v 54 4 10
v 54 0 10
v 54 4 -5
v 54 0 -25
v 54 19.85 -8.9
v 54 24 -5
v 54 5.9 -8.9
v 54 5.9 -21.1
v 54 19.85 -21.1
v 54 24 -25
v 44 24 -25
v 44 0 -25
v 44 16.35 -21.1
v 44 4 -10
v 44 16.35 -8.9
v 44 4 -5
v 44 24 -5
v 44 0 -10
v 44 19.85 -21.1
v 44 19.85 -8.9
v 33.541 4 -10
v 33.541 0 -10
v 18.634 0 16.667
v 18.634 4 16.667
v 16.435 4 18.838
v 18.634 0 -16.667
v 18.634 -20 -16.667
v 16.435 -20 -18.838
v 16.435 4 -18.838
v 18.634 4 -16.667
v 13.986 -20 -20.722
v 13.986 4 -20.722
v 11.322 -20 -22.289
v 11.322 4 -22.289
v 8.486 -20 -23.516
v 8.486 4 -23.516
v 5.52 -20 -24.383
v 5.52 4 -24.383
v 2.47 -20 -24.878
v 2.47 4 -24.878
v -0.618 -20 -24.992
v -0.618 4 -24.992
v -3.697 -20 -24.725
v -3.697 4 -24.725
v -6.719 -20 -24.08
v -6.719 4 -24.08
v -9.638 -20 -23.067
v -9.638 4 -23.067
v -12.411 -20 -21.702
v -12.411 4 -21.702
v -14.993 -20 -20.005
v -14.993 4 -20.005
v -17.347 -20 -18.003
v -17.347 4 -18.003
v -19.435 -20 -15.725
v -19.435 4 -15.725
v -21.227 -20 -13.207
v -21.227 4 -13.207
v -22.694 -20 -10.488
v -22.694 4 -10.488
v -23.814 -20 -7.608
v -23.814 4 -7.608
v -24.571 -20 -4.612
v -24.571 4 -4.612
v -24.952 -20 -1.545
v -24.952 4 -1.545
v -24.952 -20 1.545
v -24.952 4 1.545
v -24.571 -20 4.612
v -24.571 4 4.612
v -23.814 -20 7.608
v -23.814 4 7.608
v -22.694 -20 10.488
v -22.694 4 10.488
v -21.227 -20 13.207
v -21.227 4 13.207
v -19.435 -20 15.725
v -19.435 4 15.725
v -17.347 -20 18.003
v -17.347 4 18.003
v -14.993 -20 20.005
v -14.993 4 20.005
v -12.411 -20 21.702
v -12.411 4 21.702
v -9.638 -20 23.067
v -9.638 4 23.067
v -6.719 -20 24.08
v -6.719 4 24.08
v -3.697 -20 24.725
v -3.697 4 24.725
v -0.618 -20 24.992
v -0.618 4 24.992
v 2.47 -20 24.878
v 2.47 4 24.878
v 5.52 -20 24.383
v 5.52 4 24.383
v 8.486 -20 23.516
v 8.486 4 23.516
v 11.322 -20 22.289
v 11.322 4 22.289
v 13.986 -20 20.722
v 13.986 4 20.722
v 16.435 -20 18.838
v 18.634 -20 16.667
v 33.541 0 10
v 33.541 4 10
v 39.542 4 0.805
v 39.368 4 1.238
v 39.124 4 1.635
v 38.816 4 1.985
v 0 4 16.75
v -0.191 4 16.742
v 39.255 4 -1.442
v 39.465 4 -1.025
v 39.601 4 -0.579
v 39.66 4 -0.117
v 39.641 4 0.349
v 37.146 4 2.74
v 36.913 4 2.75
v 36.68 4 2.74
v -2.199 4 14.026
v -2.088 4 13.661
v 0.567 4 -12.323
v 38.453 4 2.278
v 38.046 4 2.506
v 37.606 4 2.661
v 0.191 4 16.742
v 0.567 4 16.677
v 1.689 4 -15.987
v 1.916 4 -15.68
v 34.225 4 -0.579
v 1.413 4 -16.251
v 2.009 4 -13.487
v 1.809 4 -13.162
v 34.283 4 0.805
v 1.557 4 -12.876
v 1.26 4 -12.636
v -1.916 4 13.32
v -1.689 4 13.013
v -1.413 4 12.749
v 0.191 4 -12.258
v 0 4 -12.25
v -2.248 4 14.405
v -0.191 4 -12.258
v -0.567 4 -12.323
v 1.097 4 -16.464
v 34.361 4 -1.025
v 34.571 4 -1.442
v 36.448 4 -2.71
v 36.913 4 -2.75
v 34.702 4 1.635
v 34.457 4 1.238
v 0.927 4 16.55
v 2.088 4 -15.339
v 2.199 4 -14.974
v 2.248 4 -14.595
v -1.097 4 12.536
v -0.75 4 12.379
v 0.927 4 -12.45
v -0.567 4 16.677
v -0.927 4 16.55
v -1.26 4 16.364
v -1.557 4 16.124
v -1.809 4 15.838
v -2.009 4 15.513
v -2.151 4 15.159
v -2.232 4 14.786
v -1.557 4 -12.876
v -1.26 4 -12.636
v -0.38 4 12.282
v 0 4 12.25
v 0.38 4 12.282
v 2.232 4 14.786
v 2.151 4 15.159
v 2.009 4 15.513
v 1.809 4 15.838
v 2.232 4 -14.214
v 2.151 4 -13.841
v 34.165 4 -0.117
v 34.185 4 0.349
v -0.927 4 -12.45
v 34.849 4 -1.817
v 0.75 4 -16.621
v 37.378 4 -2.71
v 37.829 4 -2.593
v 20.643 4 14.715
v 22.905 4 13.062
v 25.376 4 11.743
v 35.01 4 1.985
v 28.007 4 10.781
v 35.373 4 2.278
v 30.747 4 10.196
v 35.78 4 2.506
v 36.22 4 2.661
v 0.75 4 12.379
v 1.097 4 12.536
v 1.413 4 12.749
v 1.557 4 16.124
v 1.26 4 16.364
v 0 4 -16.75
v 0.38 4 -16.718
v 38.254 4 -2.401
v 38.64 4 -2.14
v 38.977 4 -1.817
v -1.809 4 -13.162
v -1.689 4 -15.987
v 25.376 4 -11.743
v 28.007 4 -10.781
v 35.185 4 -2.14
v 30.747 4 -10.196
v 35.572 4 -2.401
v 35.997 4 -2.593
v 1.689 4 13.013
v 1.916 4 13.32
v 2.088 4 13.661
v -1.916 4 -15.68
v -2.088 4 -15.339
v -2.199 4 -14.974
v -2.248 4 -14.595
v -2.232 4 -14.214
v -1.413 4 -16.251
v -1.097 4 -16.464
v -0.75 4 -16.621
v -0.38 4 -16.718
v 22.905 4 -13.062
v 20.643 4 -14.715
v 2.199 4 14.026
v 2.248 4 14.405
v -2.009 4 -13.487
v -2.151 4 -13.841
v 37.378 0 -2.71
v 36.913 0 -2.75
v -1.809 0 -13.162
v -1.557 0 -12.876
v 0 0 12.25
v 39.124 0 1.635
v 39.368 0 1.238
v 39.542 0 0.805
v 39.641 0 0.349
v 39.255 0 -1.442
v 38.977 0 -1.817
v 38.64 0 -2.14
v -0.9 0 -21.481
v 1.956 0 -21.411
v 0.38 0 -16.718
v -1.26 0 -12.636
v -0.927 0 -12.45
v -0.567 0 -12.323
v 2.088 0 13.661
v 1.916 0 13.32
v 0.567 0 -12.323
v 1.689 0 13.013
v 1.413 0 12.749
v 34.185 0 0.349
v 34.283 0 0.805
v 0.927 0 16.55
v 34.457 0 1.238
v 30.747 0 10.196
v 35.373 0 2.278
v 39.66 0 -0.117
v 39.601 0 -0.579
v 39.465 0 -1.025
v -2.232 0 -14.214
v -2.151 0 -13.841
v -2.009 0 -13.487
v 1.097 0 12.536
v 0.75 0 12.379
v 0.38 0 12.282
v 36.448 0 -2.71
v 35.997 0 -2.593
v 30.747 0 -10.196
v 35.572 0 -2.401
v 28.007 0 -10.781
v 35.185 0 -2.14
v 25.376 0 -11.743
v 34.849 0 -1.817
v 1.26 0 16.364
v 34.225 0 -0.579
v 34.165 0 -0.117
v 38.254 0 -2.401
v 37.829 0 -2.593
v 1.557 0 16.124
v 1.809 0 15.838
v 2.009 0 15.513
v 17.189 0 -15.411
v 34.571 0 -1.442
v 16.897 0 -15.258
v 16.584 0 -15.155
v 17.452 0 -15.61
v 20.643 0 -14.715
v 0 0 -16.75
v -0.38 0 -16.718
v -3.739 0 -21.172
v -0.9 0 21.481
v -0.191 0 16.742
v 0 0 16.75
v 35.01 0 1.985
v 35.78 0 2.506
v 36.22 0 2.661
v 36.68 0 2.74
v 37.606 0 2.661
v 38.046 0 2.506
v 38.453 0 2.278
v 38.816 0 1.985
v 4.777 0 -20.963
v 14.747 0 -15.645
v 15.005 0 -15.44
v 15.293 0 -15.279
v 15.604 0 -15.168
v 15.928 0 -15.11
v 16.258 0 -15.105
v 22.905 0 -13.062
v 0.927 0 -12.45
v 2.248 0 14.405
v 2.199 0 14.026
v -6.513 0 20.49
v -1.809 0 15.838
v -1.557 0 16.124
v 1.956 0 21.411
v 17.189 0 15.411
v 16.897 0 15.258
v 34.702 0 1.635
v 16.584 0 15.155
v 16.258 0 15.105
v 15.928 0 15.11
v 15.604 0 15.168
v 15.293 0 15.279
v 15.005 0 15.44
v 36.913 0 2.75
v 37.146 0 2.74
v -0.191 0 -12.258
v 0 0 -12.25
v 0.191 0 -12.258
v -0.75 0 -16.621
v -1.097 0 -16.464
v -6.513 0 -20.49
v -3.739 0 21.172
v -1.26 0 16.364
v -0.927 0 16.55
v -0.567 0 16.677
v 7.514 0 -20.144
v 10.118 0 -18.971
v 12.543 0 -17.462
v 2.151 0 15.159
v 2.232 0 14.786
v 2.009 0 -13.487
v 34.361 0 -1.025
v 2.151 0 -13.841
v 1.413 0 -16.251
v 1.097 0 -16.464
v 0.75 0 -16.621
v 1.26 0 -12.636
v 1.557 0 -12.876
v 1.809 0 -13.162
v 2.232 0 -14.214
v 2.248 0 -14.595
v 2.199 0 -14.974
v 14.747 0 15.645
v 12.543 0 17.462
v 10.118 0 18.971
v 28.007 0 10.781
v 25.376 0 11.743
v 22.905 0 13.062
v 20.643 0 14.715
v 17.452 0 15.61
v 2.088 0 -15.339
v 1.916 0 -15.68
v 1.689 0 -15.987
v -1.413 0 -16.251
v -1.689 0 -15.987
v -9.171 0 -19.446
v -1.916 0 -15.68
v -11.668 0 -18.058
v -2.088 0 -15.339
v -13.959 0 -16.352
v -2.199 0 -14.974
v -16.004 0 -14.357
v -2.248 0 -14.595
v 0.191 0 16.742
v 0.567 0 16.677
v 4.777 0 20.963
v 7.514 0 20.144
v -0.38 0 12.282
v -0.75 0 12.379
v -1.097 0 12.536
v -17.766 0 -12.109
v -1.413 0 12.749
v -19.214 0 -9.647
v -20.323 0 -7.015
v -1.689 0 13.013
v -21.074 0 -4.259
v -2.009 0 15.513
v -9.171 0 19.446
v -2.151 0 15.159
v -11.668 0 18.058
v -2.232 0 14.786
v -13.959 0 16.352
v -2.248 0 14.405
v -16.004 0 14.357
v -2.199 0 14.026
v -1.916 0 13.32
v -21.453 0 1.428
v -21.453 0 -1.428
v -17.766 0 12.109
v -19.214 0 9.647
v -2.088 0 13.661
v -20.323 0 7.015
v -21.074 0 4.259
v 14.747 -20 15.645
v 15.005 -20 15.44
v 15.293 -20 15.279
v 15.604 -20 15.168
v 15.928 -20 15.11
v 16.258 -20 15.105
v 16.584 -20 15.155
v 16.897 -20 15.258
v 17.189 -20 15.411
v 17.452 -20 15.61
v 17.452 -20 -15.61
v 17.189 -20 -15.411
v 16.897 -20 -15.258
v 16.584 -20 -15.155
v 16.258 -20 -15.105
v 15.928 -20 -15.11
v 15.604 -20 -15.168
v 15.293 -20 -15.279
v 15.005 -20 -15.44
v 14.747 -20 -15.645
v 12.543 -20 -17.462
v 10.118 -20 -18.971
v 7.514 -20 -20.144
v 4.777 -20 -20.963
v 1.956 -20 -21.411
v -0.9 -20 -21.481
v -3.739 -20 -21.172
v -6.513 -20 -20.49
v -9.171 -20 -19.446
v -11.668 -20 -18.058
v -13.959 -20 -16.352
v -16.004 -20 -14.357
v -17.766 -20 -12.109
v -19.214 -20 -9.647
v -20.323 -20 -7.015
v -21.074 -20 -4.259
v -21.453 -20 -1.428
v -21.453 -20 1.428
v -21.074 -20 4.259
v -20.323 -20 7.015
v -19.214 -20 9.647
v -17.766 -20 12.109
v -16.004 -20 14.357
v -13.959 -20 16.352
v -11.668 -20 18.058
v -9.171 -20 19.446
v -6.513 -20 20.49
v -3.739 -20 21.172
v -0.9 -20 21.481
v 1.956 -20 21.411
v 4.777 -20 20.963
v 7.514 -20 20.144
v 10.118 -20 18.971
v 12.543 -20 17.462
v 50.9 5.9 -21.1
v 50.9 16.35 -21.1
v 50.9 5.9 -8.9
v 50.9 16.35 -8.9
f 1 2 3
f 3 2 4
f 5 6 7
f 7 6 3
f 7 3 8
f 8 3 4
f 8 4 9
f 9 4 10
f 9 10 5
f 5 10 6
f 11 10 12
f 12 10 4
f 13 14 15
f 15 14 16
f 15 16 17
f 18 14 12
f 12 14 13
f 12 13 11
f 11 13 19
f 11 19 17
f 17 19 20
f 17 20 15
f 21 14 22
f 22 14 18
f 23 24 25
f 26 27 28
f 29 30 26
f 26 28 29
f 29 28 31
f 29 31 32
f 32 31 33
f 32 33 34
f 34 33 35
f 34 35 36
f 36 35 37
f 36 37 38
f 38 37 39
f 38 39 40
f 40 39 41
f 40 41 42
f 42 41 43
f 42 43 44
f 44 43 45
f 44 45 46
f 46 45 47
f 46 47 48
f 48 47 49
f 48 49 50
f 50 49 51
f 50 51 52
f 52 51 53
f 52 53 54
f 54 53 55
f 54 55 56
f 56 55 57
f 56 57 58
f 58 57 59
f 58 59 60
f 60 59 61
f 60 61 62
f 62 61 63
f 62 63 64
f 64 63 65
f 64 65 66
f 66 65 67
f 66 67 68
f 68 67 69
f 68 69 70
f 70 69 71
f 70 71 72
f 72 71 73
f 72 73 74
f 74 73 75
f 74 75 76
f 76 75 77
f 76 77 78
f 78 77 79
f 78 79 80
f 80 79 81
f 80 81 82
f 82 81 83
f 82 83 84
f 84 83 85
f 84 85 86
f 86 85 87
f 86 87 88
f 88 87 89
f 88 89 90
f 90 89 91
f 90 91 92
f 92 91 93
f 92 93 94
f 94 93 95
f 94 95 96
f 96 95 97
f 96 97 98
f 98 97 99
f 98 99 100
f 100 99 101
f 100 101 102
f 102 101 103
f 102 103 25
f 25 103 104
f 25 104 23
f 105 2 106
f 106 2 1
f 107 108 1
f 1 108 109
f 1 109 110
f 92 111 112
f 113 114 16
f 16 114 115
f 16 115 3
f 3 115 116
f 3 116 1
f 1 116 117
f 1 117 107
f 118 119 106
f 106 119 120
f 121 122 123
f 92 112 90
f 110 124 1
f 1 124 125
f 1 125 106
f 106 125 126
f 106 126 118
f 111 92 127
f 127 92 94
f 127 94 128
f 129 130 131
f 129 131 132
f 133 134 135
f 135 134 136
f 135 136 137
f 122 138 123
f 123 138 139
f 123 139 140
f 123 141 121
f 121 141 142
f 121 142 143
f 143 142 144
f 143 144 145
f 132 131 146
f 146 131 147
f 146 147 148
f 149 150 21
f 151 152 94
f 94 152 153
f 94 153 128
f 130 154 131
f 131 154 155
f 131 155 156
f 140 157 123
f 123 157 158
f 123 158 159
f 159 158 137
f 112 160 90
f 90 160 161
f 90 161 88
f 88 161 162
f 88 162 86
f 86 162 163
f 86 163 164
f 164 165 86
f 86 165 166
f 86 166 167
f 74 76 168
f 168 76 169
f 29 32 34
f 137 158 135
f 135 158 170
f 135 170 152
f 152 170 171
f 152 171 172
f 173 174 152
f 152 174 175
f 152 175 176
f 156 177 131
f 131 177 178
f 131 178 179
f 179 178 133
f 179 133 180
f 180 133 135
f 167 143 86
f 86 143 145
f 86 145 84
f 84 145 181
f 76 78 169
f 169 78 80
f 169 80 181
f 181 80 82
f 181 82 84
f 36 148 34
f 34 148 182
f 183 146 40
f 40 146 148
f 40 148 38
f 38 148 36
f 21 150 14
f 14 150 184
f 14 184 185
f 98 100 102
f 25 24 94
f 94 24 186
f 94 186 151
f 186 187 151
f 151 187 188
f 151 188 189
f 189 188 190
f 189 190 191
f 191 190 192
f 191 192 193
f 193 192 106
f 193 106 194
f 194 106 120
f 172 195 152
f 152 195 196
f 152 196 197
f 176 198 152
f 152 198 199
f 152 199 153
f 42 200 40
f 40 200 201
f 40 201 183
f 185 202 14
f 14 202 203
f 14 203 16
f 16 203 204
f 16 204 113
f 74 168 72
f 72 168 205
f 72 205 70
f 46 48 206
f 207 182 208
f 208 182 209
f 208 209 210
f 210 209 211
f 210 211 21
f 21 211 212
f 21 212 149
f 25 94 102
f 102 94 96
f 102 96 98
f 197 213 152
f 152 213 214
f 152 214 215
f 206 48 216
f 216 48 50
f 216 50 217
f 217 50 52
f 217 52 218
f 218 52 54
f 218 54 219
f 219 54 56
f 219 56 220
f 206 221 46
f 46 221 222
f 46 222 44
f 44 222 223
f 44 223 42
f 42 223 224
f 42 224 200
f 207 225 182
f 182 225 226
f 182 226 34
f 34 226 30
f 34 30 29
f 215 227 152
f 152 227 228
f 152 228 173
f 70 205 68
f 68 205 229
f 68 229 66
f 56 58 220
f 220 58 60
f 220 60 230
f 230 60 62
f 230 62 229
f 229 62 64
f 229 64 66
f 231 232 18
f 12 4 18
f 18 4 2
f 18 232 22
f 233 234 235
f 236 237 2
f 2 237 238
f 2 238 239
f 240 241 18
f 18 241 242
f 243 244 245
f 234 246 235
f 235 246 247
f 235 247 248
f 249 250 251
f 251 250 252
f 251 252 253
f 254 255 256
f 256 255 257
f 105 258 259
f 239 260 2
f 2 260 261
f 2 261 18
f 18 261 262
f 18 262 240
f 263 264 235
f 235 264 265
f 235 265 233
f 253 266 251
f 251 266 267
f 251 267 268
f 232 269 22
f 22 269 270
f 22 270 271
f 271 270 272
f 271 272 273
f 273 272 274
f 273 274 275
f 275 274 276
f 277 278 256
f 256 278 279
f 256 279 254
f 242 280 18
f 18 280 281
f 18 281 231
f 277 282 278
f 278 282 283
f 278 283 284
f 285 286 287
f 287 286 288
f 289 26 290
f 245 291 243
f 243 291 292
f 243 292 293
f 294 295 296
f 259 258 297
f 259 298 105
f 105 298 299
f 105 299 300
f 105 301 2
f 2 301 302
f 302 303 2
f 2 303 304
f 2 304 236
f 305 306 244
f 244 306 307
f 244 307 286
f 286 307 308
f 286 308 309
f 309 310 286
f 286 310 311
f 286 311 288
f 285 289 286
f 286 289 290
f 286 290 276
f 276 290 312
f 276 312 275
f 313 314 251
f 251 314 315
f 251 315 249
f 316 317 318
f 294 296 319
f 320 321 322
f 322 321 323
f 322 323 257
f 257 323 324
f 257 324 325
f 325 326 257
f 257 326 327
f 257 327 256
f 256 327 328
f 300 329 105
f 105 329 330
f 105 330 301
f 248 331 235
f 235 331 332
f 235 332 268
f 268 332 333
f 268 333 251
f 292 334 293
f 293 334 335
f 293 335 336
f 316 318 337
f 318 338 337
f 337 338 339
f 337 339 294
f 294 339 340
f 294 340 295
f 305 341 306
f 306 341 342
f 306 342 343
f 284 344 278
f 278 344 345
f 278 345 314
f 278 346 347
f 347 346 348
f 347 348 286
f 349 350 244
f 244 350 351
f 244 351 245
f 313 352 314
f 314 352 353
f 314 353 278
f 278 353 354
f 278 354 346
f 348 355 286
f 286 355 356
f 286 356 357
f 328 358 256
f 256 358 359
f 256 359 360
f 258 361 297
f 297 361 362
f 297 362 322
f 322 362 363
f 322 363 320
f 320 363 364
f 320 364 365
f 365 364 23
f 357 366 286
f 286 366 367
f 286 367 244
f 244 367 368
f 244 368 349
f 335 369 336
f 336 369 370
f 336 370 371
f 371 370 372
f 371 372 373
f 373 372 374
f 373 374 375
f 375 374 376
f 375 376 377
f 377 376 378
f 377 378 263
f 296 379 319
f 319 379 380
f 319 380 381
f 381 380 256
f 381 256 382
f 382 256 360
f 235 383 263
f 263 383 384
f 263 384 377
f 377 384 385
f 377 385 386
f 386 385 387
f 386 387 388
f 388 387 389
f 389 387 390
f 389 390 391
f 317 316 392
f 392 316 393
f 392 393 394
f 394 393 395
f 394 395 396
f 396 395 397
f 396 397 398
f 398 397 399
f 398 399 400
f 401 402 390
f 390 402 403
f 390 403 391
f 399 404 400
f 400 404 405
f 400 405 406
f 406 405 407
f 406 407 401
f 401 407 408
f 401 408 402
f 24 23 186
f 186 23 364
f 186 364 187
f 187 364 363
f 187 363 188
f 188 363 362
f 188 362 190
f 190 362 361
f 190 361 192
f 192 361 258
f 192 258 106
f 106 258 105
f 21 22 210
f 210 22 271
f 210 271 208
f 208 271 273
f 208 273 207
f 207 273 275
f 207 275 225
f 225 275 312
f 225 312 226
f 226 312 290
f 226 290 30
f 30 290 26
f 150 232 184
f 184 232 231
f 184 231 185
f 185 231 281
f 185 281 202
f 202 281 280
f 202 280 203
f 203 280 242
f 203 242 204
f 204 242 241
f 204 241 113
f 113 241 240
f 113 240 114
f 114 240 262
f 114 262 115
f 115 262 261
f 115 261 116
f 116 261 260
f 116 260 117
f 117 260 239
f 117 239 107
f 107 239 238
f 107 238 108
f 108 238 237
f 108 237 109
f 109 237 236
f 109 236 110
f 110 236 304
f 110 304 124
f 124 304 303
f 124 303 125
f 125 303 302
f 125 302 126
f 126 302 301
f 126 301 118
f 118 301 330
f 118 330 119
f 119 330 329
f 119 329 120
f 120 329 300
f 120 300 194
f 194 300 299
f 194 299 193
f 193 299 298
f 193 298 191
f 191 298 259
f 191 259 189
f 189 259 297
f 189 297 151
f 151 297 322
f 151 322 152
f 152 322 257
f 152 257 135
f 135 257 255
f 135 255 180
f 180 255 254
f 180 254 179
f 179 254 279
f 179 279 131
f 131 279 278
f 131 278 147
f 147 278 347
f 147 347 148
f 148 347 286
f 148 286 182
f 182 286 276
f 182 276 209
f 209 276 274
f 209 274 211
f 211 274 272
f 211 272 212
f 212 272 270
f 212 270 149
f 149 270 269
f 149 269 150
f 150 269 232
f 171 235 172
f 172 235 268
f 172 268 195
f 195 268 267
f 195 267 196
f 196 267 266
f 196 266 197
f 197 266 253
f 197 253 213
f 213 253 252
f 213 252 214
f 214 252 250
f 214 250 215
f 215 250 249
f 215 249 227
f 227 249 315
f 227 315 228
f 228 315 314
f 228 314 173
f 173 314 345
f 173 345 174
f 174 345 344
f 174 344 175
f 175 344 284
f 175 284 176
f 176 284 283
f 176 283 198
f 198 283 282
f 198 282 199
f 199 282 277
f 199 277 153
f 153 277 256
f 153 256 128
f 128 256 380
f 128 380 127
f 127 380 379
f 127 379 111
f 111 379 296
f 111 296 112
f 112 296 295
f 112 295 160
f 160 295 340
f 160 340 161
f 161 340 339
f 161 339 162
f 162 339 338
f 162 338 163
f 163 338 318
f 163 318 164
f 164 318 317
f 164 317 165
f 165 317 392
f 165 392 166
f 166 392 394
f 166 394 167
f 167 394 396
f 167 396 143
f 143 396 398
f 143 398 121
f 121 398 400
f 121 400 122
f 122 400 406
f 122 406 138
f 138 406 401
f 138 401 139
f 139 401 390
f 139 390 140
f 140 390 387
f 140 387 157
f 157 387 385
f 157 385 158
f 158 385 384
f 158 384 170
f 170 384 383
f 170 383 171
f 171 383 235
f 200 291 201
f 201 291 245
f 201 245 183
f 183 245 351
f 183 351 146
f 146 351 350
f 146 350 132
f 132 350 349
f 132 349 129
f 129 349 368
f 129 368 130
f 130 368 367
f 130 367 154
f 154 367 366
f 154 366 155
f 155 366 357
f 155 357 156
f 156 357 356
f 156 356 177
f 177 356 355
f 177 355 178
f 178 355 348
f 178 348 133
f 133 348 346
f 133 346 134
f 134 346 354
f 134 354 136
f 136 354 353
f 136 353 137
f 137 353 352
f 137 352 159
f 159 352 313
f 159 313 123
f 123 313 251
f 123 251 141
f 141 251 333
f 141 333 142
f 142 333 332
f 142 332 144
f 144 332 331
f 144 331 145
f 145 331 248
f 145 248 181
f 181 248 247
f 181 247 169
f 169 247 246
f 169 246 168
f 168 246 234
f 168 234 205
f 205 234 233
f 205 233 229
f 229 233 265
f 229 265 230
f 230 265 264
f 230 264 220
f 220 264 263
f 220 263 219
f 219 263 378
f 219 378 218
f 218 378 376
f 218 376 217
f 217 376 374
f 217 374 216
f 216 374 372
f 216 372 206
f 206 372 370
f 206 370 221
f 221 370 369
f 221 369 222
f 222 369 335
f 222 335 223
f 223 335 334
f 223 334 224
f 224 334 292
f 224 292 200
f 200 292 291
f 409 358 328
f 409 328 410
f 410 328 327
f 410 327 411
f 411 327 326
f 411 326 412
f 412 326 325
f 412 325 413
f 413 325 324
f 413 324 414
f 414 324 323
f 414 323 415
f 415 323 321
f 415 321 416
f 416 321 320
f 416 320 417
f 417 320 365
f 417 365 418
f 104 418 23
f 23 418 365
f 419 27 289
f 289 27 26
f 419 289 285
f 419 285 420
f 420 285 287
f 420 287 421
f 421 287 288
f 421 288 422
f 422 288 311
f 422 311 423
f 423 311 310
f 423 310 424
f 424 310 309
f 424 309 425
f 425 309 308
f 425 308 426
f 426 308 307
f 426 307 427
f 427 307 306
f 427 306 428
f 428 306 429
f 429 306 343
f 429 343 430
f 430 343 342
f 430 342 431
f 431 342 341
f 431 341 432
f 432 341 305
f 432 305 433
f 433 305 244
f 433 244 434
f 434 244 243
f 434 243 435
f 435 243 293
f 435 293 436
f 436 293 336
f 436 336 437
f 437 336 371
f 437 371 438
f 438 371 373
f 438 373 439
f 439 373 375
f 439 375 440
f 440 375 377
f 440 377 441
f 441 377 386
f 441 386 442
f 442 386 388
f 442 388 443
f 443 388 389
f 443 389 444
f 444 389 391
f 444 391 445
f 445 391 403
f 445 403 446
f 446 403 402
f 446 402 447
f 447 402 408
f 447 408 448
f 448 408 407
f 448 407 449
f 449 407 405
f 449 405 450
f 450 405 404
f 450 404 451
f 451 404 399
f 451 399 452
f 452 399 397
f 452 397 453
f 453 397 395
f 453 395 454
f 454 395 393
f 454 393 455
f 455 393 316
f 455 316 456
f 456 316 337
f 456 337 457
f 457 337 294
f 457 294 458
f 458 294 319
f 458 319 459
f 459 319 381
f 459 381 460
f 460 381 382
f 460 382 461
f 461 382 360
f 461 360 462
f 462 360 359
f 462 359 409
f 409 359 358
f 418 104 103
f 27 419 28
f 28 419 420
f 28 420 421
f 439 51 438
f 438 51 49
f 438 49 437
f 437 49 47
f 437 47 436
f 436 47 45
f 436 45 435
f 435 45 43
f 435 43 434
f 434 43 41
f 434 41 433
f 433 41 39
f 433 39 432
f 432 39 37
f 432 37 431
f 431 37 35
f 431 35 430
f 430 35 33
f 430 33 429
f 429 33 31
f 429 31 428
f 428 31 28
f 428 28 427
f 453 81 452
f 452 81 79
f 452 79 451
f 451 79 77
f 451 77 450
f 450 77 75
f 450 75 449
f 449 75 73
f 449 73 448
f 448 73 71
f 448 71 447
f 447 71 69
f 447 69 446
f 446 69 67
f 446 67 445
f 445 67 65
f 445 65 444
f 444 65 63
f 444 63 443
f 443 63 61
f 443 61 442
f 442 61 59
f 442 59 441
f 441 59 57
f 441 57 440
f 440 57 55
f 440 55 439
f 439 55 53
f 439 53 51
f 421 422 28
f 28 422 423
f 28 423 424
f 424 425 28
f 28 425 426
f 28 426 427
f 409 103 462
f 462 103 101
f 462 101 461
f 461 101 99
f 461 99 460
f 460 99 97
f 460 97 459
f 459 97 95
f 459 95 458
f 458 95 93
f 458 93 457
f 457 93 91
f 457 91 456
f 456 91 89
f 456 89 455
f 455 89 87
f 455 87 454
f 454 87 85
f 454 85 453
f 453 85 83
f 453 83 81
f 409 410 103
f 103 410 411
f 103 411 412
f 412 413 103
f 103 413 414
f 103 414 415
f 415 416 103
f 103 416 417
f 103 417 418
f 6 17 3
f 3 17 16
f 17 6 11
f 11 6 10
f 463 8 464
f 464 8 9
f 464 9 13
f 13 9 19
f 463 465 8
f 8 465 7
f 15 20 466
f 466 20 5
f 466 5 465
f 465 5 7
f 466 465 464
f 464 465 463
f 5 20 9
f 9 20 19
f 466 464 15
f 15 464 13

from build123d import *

# Parameters (mm, degrees)
BOSS_EXTRUDE1_DEPTH = 4
FILLET1_R           = 20
SKETCH1_R           = 2.25
SKETCH1_R_2         = 2.75
CUT_EXTRUDE3_DEPTH  = 131.855321132
BOSS_EXTRUDE2_START = 20
BOSS_EXTRUDE2_DEPTH = 20
SKETCH7_W           = 10
SKETCH7_H           = 20
BOSS_EXTRUDE3_DEPTH = 20
SKETCH8_W           = 12.2
SKETCH8_H           = 12.2
CUT_EXTRUDE4_DEPTH  = 3.1
CUT_EXTRUDE5_REACH  = 88.267
SKETCH8_3_W         = 12.2
SKETCH8_3_H         = 3.5


with BuildPart() as part:
    # Sketch3 → Boss-Extrude1 (new body)
    with BuildSketch(Plane(origin=(0, 0, 0), x_dir=(1, 0, 0), z_dir=(0, 1, 0))):
        with BuildLine():
            Line((22.912878475, 10), (44, 10))
            Line((44, 10), (44, 25))
            Line((44, 25), (54, 25))
            Line((54, 25), (54, -10))
            Line((54, -10), (22.912878475, -10))
            ThreePointArc((22.912878475, -10), (-25, 0), (22.912878475, 10))
        make_face()
    extrude(amount=BOSS_EXTRUDE1_DEPTH)

    # Fillet1
    fillet1_edges = [part.edges().sort_by_distance(p)[0] for p in [
        (22.912878475, 2, 10),
        (22.912878475, 2, -10),
    ]]
    fillet(fillet1_edges, radius=FILLET1_R)

    # Sketch1 → Cut-Extrude3 (cut, through all)
    with BuildSketch(Plane(origin=(103.38268991, 0, 0), x_dir=(1, 0, 0), z_dir=(0, 1, 0))):
        with Locations((-103.38268991, 14.5)):
            Circle(SKETCH1_R)
        with Locations((-103.38268991, -14.5)):
            Circle(SKETCH1_R)
        with Locations((-66.469811435, 0)):
            Circle(SKETCH1_R_2)
    extrude(amount=CUT_EXTRUDE3_DEPTH, mode=Mode.SUBTRACT)

    # Sketch4 → Boss-Extrude2 (add)
    with BuildSketch(Plane.XZ.offset(BOSS_EXTRUDE2_START)):
        with BuildLine():
            Line((18.633899812, 16.666666667), (17.452315988, 15.609825965))
            ThreePointArc((17.452315988, 15.609825965), (16.092851842, 15.100708662), (14.747154343, 15.645173018))
            ThreePointArc((14.747154343, 15.645173018), (-21.5, 0), (14.747154343, -15.645173018))
            ThreePointArc((14.747154343, -15.645173018), (16.092851842, -15.100708662), (17.452315988, -15.609825965))
            Line((17.452315988, -15.609825965), (18.633899812, -16.666666667))
            ThreePointArc((18.633899812, -16.666666667), (-25, 0), (18.633899812, 16.666666667))
        make_face()
    extrude(amount=-BOSS_EXTRUDE2_DEPTH)

    # Sketch7 → Boss-Extrude3 (add)
    with BuildSketch(Plane(origin=(0, 4, 0), x_dir=(1, 0, 0), z_dir=(0, 1, 0))):
        with Locations((49, 15)):
            Rectangle(SKETCH7_W, SKETCH7_H)
    extrude(amount=BOSS_EXTRUDE3_DEPTH)

    # Sketch8 → Cut-Extrude4 (cut)
    with BuildSketch(Plane(origin=(54, 0, 0), x_dir=(0, 0, -1), z_dir=(1, 0, 0))):
        with Locations((15, 12)):
            Rectangle(SKETCH8_W, SKETCH8_H)
    extrude(amount=-CUT_EXTRUDE4_DEPTH, mode=Mode.SUBTRACT)

    # Sketch8<3> → Cut-Extrude5 (cut, up to next)
    with BuildSketch(Plane(origin=(54, 0, 0), x_dir=(0, 0, -1), z_dir=(1, 0, 0)), mode=Mode.PRIVATE) as cut_extrude5_sk1:
        with Locations((15, 18.1)):
            Rectangle(SKETCH8_3_W, SKETCH8_3_H)
    cut_extrude5_tool1 = extrude(cut_extrude5_sk1.sketch, amount=-CUT_EXTRUDE5_REACH, mode=Mode.PRIVATE) & part.part
    add(cut_extrude5_tool1.solids().sort_by_distance((54, 18.1, -15))[0], mode=Mode.SUBTRACT)


solid = part.part
